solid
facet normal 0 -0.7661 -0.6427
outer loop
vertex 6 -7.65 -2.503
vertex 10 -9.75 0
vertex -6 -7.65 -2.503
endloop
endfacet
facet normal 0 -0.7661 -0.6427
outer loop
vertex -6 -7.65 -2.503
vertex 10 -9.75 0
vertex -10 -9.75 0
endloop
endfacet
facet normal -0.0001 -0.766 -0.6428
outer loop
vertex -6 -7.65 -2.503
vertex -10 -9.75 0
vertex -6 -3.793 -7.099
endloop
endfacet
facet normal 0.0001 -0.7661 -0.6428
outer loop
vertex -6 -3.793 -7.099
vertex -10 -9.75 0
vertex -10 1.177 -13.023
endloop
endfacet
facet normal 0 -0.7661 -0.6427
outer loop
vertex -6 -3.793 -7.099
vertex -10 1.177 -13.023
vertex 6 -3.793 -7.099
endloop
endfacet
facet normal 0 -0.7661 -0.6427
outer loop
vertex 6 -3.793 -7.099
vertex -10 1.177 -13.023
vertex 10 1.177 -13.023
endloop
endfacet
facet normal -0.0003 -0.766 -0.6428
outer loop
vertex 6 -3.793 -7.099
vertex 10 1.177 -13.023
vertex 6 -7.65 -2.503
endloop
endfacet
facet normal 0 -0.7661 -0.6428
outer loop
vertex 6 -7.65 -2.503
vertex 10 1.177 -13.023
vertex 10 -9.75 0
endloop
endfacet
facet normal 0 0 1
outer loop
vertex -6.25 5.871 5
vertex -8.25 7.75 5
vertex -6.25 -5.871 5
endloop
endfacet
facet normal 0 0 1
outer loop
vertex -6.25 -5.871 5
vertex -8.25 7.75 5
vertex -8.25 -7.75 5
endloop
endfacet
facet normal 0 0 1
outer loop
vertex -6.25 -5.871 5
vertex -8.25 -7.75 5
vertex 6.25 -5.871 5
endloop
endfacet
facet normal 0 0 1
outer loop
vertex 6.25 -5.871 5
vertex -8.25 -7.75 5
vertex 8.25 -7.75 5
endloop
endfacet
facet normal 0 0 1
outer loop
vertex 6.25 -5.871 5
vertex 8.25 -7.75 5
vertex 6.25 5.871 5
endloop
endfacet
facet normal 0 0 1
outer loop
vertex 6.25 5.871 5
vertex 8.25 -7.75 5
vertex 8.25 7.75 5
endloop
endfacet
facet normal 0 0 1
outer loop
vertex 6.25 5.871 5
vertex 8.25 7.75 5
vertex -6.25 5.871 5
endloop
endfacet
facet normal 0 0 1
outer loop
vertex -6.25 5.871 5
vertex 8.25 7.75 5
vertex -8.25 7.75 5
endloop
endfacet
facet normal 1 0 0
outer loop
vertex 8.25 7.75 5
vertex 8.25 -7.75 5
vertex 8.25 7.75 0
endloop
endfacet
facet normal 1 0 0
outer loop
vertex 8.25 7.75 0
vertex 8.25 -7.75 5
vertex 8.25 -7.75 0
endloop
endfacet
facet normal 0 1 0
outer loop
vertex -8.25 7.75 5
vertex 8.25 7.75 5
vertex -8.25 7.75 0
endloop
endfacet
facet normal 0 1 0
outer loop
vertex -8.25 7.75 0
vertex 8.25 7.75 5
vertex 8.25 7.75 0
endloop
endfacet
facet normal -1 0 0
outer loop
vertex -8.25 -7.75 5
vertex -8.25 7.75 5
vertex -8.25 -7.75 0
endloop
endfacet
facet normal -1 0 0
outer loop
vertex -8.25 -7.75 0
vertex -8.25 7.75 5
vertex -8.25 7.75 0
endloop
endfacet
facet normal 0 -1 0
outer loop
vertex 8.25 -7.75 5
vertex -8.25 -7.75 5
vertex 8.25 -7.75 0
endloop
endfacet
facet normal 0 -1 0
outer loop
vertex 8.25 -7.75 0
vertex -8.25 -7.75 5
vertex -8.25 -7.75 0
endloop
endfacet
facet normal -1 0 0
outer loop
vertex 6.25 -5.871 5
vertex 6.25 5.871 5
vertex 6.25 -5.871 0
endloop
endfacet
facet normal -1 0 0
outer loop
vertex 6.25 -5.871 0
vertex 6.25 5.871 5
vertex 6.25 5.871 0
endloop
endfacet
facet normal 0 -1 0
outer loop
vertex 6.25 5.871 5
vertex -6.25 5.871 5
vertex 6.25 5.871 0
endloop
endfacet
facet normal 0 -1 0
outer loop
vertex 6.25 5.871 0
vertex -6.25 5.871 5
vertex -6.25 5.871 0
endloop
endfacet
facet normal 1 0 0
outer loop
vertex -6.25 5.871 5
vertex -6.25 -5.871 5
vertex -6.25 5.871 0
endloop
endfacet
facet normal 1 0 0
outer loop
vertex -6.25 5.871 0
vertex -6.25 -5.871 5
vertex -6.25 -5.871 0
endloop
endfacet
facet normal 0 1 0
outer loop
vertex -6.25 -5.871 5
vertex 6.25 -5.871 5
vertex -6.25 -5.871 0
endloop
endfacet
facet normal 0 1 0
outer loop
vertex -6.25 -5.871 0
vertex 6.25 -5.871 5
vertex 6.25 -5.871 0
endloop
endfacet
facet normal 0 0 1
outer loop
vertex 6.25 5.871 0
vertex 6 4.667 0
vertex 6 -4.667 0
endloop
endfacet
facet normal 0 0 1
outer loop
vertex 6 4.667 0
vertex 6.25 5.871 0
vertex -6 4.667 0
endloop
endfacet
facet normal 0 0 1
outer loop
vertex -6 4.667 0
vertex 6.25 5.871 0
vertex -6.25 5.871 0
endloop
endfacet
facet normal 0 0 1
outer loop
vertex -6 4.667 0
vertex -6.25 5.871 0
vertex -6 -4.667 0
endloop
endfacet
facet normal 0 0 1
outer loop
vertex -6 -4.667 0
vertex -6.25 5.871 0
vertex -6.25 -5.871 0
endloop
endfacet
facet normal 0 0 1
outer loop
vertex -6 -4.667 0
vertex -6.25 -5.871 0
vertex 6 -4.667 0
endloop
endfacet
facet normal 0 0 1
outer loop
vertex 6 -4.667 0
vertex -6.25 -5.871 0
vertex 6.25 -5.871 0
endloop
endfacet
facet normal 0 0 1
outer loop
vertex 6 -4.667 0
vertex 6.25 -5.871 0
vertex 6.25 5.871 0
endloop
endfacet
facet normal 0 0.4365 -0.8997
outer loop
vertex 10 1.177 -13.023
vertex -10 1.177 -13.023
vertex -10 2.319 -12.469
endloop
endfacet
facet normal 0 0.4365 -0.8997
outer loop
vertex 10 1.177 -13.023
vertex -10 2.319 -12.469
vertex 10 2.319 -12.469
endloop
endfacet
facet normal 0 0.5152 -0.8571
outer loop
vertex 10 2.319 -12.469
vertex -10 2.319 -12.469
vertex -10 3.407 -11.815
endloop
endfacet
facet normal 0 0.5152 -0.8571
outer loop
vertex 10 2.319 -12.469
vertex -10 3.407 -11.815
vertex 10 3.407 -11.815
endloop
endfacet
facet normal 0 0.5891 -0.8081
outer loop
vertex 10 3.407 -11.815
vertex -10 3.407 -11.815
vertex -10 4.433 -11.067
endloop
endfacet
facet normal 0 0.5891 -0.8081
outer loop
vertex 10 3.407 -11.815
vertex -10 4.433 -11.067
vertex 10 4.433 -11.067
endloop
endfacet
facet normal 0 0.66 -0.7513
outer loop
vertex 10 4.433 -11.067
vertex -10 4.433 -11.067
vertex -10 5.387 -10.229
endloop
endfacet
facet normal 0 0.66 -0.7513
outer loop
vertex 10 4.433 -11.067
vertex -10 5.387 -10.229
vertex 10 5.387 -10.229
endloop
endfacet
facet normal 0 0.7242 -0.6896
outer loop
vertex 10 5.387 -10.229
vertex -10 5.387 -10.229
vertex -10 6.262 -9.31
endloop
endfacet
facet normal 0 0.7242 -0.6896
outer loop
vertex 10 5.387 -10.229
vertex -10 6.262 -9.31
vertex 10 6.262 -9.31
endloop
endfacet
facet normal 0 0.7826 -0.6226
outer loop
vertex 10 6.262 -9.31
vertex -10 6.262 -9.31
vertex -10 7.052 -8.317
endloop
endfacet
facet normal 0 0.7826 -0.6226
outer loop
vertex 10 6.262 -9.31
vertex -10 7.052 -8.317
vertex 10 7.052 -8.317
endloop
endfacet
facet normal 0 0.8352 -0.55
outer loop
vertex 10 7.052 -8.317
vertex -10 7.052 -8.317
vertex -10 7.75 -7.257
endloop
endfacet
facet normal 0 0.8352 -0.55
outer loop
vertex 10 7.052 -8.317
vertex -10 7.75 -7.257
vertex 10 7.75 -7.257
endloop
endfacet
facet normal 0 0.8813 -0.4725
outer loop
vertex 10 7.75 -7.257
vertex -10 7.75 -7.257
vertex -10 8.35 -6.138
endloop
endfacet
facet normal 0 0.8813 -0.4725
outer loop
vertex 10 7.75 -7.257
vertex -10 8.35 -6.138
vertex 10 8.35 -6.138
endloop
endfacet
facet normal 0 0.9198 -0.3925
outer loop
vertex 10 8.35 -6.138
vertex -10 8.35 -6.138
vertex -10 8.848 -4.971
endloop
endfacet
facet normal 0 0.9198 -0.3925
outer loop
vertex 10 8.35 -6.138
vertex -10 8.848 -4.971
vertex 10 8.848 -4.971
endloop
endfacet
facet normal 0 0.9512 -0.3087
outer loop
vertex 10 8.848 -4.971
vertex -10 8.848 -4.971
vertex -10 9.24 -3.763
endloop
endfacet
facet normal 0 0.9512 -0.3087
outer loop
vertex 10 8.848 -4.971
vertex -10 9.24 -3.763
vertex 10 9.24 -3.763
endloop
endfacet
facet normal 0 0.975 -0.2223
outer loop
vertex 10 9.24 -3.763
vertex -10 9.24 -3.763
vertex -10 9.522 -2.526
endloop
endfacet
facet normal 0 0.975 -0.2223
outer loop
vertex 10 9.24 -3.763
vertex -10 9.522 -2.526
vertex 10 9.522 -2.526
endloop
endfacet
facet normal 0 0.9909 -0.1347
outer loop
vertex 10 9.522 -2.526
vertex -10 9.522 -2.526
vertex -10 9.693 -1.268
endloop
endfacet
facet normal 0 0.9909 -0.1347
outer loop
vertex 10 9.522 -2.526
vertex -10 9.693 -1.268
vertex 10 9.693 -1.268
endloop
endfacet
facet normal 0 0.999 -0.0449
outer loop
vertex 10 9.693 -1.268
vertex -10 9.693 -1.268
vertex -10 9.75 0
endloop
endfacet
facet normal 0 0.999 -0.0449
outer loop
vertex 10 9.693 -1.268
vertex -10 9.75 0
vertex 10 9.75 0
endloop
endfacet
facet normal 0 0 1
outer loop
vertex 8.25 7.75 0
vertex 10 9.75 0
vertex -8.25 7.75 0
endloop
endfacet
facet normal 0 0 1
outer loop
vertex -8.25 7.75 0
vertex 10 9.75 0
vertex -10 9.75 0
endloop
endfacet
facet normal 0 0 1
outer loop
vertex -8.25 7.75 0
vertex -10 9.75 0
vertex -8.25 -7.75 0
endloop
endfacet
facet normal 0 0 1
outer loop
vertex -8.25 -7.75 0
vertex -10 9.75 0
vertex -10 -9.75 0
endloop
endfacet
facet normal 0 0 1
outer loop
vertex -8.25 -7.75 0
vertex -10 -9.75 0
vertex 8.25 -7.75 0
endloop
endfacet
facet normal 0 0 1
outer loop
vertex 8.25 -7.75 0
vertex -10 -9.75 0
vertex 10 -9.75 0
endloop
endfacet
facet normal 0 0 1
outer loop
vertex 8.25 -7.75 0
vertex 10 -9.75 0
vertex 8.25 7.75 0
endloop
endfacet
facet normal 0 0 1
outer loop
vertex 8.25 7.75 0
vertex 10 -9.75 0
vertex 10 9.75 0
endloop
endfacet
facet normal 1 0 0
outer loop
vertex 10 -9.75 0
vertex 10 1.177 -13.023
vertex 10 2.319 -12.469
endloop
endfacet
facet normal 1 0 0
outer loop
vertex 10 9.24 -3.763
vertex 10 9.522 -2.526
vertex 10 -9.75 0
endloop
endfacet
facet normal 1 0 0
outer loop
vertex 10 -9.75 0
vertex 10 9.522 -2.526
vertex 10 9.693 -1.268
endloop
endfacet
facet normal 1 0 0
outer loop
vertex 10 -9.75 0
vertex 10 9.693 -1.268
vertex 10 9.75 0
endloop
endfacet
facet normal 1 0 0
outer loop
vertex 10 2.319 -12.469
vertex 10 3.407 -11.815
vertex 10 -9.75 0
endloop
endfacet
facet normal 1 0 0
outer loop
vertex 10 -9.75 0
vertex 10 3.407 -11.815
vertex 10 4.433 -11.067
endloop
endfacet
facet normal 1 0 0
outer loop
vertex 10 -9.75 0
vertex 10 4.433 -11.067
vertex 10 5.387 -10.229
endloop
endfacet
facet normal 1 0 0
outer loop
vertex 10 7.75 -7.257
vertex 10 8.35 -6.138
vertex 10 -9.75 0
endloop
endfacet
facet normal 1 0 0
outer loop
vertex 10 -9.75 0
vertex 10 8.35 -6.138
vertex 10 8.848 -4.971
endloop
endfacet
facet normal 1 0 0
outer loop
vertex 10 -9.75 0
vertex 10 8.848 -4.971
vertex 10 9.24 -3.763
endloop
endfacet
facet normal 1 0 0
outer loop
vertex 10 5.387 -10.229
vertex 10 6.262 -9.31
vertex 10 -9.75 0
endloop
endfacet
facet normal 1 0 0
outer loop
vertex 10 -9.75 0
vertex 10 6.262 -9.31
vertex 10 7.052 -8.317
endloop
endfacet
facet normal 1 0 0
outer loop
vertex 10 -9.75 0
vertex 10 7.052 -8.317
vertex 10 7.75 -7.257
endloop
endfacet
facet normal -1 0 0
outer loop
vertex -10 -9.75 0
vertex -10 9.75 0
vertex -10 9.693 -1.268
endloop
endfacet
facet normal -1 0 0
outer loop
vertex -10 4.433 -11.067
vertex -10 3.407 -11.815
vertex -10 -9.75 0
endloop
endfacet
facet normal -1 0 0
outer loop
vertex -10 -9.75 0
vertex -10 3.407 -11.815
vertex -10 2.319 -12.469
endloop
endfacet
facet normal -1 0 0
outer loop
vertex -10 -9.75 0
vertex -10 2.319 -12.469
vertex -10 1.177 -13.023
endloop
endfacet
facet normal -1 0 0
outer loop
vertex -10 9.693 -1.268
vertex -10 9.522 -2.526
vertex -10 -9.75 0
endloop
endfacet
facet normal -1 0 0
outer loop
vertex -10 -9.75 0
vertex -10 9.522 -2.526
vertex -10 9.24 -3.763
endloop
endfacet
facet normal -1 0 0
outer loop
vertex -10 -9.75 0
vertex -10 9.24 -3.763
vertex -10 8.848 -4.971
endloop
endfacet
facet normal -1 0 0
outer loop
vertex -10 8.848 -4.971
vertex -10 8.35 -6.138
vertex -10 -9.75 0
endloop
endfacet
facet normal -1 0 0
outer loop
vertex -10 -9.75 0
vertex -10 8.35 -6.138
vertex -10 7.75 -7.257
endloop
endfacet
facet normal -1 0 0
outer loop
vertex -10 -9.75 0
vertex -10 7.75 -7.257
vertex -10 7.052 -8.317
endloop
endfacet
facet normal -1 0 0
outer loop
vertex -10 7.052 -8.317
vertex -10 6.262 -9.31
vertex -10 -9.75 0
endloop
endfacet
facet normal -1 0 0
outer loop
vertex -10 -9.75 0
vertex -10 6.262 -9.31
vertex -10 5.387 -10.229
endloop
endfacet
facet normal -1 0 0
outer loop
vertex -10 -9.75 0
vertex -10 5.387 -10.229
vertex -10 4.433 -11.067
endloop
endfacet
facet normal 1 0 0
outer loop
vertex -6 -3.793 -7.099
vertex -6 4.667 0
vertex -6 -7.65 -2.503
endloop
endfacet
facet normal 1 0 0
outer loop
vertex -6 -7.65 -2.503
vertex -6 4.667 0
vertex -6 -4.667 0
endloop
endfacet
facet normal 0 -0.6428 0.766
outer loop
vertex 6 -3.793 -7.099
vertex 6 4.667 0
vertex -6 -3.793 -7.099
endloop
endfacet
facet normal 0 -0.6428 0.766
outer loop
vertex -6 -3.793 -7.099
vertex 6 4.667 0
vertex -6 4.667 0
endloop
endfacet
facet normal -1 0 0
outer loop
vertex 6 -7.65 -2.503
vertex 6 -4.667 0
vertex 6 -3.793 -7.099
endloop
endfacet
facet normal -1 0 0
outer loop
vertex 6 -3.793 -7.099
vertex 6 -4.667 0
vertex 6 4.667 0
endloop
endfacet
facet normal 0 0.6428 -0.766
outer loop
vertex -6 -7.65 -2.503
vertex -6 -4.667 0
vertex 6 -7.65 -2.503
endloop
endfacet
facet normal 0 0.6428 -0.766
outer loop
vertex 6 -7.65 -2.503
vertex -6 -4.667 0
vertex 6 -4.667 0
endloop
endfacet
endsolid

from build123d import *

# Parameters (mm, degrees)
SKETCH1_W           = 16.5
SKETCH1_H           = 15.5
SKETCH1_W_2         = 12.5
SKETCH1_H_2         = 11.742424242
BOSS_EXTRUDE1_DEPTH = 5
BOSS_EXTRUDE2_DEPTH = 10
CUT_SWEEP1_START    = -6
CUT_SWEEP1_DEPTH    = 12


# Read off the part's stored shape, not the designer's step: Cut-Sweep1
with BuildPart() as part:
    # Sketch1 → Boss-Extrude1 (new body)
    with BuildSketch(Plane.XY):
        Rectangle(SKETCH1_W, SKETCH1_H)
        Rectangle(SKETCH1_W_2, SKETCH1_H_2, mode=Mode.SUBTRACT)
    extrude(amount=BOSS_EXTRUDE1_DEPTH)

    # Sketch3 → Boss-Extrude2 (add, symmetric)
    with BuildSketch(Plane(origin=(0, 0, 0), x_dir=(0, 0, -1), z_dir=(1, 0, 0))):
        with BuildLine():
            Line((13.022755533, 1.177389365), (0, -9.75))
            Line((0, -9.75), (0, 9.75))
            ThreePointArc((0, 9.75), (7.794535943, 7.412955642), (13.022755533, 1.177389365))
        make_face()
    extrude(amount=BOSS_EXTRUDE2_DEPTH, both=True)

    # Cut-Sweep1 outline → Cut-Sweep1 (cut)
    with BuildSketch(Plane.YZ.offset(CUT_SWEEP1_START)):
        Polygon((-3.793172037, -7.099071125), (4.667171481, 0), (-4.667171481, 0), (-7.649897695, -2.502804467), align=None)
    extrude(amount=CUT_SWEEP1_DEPTH, mode=Mode.SUBTRACT)


solid = part.part
